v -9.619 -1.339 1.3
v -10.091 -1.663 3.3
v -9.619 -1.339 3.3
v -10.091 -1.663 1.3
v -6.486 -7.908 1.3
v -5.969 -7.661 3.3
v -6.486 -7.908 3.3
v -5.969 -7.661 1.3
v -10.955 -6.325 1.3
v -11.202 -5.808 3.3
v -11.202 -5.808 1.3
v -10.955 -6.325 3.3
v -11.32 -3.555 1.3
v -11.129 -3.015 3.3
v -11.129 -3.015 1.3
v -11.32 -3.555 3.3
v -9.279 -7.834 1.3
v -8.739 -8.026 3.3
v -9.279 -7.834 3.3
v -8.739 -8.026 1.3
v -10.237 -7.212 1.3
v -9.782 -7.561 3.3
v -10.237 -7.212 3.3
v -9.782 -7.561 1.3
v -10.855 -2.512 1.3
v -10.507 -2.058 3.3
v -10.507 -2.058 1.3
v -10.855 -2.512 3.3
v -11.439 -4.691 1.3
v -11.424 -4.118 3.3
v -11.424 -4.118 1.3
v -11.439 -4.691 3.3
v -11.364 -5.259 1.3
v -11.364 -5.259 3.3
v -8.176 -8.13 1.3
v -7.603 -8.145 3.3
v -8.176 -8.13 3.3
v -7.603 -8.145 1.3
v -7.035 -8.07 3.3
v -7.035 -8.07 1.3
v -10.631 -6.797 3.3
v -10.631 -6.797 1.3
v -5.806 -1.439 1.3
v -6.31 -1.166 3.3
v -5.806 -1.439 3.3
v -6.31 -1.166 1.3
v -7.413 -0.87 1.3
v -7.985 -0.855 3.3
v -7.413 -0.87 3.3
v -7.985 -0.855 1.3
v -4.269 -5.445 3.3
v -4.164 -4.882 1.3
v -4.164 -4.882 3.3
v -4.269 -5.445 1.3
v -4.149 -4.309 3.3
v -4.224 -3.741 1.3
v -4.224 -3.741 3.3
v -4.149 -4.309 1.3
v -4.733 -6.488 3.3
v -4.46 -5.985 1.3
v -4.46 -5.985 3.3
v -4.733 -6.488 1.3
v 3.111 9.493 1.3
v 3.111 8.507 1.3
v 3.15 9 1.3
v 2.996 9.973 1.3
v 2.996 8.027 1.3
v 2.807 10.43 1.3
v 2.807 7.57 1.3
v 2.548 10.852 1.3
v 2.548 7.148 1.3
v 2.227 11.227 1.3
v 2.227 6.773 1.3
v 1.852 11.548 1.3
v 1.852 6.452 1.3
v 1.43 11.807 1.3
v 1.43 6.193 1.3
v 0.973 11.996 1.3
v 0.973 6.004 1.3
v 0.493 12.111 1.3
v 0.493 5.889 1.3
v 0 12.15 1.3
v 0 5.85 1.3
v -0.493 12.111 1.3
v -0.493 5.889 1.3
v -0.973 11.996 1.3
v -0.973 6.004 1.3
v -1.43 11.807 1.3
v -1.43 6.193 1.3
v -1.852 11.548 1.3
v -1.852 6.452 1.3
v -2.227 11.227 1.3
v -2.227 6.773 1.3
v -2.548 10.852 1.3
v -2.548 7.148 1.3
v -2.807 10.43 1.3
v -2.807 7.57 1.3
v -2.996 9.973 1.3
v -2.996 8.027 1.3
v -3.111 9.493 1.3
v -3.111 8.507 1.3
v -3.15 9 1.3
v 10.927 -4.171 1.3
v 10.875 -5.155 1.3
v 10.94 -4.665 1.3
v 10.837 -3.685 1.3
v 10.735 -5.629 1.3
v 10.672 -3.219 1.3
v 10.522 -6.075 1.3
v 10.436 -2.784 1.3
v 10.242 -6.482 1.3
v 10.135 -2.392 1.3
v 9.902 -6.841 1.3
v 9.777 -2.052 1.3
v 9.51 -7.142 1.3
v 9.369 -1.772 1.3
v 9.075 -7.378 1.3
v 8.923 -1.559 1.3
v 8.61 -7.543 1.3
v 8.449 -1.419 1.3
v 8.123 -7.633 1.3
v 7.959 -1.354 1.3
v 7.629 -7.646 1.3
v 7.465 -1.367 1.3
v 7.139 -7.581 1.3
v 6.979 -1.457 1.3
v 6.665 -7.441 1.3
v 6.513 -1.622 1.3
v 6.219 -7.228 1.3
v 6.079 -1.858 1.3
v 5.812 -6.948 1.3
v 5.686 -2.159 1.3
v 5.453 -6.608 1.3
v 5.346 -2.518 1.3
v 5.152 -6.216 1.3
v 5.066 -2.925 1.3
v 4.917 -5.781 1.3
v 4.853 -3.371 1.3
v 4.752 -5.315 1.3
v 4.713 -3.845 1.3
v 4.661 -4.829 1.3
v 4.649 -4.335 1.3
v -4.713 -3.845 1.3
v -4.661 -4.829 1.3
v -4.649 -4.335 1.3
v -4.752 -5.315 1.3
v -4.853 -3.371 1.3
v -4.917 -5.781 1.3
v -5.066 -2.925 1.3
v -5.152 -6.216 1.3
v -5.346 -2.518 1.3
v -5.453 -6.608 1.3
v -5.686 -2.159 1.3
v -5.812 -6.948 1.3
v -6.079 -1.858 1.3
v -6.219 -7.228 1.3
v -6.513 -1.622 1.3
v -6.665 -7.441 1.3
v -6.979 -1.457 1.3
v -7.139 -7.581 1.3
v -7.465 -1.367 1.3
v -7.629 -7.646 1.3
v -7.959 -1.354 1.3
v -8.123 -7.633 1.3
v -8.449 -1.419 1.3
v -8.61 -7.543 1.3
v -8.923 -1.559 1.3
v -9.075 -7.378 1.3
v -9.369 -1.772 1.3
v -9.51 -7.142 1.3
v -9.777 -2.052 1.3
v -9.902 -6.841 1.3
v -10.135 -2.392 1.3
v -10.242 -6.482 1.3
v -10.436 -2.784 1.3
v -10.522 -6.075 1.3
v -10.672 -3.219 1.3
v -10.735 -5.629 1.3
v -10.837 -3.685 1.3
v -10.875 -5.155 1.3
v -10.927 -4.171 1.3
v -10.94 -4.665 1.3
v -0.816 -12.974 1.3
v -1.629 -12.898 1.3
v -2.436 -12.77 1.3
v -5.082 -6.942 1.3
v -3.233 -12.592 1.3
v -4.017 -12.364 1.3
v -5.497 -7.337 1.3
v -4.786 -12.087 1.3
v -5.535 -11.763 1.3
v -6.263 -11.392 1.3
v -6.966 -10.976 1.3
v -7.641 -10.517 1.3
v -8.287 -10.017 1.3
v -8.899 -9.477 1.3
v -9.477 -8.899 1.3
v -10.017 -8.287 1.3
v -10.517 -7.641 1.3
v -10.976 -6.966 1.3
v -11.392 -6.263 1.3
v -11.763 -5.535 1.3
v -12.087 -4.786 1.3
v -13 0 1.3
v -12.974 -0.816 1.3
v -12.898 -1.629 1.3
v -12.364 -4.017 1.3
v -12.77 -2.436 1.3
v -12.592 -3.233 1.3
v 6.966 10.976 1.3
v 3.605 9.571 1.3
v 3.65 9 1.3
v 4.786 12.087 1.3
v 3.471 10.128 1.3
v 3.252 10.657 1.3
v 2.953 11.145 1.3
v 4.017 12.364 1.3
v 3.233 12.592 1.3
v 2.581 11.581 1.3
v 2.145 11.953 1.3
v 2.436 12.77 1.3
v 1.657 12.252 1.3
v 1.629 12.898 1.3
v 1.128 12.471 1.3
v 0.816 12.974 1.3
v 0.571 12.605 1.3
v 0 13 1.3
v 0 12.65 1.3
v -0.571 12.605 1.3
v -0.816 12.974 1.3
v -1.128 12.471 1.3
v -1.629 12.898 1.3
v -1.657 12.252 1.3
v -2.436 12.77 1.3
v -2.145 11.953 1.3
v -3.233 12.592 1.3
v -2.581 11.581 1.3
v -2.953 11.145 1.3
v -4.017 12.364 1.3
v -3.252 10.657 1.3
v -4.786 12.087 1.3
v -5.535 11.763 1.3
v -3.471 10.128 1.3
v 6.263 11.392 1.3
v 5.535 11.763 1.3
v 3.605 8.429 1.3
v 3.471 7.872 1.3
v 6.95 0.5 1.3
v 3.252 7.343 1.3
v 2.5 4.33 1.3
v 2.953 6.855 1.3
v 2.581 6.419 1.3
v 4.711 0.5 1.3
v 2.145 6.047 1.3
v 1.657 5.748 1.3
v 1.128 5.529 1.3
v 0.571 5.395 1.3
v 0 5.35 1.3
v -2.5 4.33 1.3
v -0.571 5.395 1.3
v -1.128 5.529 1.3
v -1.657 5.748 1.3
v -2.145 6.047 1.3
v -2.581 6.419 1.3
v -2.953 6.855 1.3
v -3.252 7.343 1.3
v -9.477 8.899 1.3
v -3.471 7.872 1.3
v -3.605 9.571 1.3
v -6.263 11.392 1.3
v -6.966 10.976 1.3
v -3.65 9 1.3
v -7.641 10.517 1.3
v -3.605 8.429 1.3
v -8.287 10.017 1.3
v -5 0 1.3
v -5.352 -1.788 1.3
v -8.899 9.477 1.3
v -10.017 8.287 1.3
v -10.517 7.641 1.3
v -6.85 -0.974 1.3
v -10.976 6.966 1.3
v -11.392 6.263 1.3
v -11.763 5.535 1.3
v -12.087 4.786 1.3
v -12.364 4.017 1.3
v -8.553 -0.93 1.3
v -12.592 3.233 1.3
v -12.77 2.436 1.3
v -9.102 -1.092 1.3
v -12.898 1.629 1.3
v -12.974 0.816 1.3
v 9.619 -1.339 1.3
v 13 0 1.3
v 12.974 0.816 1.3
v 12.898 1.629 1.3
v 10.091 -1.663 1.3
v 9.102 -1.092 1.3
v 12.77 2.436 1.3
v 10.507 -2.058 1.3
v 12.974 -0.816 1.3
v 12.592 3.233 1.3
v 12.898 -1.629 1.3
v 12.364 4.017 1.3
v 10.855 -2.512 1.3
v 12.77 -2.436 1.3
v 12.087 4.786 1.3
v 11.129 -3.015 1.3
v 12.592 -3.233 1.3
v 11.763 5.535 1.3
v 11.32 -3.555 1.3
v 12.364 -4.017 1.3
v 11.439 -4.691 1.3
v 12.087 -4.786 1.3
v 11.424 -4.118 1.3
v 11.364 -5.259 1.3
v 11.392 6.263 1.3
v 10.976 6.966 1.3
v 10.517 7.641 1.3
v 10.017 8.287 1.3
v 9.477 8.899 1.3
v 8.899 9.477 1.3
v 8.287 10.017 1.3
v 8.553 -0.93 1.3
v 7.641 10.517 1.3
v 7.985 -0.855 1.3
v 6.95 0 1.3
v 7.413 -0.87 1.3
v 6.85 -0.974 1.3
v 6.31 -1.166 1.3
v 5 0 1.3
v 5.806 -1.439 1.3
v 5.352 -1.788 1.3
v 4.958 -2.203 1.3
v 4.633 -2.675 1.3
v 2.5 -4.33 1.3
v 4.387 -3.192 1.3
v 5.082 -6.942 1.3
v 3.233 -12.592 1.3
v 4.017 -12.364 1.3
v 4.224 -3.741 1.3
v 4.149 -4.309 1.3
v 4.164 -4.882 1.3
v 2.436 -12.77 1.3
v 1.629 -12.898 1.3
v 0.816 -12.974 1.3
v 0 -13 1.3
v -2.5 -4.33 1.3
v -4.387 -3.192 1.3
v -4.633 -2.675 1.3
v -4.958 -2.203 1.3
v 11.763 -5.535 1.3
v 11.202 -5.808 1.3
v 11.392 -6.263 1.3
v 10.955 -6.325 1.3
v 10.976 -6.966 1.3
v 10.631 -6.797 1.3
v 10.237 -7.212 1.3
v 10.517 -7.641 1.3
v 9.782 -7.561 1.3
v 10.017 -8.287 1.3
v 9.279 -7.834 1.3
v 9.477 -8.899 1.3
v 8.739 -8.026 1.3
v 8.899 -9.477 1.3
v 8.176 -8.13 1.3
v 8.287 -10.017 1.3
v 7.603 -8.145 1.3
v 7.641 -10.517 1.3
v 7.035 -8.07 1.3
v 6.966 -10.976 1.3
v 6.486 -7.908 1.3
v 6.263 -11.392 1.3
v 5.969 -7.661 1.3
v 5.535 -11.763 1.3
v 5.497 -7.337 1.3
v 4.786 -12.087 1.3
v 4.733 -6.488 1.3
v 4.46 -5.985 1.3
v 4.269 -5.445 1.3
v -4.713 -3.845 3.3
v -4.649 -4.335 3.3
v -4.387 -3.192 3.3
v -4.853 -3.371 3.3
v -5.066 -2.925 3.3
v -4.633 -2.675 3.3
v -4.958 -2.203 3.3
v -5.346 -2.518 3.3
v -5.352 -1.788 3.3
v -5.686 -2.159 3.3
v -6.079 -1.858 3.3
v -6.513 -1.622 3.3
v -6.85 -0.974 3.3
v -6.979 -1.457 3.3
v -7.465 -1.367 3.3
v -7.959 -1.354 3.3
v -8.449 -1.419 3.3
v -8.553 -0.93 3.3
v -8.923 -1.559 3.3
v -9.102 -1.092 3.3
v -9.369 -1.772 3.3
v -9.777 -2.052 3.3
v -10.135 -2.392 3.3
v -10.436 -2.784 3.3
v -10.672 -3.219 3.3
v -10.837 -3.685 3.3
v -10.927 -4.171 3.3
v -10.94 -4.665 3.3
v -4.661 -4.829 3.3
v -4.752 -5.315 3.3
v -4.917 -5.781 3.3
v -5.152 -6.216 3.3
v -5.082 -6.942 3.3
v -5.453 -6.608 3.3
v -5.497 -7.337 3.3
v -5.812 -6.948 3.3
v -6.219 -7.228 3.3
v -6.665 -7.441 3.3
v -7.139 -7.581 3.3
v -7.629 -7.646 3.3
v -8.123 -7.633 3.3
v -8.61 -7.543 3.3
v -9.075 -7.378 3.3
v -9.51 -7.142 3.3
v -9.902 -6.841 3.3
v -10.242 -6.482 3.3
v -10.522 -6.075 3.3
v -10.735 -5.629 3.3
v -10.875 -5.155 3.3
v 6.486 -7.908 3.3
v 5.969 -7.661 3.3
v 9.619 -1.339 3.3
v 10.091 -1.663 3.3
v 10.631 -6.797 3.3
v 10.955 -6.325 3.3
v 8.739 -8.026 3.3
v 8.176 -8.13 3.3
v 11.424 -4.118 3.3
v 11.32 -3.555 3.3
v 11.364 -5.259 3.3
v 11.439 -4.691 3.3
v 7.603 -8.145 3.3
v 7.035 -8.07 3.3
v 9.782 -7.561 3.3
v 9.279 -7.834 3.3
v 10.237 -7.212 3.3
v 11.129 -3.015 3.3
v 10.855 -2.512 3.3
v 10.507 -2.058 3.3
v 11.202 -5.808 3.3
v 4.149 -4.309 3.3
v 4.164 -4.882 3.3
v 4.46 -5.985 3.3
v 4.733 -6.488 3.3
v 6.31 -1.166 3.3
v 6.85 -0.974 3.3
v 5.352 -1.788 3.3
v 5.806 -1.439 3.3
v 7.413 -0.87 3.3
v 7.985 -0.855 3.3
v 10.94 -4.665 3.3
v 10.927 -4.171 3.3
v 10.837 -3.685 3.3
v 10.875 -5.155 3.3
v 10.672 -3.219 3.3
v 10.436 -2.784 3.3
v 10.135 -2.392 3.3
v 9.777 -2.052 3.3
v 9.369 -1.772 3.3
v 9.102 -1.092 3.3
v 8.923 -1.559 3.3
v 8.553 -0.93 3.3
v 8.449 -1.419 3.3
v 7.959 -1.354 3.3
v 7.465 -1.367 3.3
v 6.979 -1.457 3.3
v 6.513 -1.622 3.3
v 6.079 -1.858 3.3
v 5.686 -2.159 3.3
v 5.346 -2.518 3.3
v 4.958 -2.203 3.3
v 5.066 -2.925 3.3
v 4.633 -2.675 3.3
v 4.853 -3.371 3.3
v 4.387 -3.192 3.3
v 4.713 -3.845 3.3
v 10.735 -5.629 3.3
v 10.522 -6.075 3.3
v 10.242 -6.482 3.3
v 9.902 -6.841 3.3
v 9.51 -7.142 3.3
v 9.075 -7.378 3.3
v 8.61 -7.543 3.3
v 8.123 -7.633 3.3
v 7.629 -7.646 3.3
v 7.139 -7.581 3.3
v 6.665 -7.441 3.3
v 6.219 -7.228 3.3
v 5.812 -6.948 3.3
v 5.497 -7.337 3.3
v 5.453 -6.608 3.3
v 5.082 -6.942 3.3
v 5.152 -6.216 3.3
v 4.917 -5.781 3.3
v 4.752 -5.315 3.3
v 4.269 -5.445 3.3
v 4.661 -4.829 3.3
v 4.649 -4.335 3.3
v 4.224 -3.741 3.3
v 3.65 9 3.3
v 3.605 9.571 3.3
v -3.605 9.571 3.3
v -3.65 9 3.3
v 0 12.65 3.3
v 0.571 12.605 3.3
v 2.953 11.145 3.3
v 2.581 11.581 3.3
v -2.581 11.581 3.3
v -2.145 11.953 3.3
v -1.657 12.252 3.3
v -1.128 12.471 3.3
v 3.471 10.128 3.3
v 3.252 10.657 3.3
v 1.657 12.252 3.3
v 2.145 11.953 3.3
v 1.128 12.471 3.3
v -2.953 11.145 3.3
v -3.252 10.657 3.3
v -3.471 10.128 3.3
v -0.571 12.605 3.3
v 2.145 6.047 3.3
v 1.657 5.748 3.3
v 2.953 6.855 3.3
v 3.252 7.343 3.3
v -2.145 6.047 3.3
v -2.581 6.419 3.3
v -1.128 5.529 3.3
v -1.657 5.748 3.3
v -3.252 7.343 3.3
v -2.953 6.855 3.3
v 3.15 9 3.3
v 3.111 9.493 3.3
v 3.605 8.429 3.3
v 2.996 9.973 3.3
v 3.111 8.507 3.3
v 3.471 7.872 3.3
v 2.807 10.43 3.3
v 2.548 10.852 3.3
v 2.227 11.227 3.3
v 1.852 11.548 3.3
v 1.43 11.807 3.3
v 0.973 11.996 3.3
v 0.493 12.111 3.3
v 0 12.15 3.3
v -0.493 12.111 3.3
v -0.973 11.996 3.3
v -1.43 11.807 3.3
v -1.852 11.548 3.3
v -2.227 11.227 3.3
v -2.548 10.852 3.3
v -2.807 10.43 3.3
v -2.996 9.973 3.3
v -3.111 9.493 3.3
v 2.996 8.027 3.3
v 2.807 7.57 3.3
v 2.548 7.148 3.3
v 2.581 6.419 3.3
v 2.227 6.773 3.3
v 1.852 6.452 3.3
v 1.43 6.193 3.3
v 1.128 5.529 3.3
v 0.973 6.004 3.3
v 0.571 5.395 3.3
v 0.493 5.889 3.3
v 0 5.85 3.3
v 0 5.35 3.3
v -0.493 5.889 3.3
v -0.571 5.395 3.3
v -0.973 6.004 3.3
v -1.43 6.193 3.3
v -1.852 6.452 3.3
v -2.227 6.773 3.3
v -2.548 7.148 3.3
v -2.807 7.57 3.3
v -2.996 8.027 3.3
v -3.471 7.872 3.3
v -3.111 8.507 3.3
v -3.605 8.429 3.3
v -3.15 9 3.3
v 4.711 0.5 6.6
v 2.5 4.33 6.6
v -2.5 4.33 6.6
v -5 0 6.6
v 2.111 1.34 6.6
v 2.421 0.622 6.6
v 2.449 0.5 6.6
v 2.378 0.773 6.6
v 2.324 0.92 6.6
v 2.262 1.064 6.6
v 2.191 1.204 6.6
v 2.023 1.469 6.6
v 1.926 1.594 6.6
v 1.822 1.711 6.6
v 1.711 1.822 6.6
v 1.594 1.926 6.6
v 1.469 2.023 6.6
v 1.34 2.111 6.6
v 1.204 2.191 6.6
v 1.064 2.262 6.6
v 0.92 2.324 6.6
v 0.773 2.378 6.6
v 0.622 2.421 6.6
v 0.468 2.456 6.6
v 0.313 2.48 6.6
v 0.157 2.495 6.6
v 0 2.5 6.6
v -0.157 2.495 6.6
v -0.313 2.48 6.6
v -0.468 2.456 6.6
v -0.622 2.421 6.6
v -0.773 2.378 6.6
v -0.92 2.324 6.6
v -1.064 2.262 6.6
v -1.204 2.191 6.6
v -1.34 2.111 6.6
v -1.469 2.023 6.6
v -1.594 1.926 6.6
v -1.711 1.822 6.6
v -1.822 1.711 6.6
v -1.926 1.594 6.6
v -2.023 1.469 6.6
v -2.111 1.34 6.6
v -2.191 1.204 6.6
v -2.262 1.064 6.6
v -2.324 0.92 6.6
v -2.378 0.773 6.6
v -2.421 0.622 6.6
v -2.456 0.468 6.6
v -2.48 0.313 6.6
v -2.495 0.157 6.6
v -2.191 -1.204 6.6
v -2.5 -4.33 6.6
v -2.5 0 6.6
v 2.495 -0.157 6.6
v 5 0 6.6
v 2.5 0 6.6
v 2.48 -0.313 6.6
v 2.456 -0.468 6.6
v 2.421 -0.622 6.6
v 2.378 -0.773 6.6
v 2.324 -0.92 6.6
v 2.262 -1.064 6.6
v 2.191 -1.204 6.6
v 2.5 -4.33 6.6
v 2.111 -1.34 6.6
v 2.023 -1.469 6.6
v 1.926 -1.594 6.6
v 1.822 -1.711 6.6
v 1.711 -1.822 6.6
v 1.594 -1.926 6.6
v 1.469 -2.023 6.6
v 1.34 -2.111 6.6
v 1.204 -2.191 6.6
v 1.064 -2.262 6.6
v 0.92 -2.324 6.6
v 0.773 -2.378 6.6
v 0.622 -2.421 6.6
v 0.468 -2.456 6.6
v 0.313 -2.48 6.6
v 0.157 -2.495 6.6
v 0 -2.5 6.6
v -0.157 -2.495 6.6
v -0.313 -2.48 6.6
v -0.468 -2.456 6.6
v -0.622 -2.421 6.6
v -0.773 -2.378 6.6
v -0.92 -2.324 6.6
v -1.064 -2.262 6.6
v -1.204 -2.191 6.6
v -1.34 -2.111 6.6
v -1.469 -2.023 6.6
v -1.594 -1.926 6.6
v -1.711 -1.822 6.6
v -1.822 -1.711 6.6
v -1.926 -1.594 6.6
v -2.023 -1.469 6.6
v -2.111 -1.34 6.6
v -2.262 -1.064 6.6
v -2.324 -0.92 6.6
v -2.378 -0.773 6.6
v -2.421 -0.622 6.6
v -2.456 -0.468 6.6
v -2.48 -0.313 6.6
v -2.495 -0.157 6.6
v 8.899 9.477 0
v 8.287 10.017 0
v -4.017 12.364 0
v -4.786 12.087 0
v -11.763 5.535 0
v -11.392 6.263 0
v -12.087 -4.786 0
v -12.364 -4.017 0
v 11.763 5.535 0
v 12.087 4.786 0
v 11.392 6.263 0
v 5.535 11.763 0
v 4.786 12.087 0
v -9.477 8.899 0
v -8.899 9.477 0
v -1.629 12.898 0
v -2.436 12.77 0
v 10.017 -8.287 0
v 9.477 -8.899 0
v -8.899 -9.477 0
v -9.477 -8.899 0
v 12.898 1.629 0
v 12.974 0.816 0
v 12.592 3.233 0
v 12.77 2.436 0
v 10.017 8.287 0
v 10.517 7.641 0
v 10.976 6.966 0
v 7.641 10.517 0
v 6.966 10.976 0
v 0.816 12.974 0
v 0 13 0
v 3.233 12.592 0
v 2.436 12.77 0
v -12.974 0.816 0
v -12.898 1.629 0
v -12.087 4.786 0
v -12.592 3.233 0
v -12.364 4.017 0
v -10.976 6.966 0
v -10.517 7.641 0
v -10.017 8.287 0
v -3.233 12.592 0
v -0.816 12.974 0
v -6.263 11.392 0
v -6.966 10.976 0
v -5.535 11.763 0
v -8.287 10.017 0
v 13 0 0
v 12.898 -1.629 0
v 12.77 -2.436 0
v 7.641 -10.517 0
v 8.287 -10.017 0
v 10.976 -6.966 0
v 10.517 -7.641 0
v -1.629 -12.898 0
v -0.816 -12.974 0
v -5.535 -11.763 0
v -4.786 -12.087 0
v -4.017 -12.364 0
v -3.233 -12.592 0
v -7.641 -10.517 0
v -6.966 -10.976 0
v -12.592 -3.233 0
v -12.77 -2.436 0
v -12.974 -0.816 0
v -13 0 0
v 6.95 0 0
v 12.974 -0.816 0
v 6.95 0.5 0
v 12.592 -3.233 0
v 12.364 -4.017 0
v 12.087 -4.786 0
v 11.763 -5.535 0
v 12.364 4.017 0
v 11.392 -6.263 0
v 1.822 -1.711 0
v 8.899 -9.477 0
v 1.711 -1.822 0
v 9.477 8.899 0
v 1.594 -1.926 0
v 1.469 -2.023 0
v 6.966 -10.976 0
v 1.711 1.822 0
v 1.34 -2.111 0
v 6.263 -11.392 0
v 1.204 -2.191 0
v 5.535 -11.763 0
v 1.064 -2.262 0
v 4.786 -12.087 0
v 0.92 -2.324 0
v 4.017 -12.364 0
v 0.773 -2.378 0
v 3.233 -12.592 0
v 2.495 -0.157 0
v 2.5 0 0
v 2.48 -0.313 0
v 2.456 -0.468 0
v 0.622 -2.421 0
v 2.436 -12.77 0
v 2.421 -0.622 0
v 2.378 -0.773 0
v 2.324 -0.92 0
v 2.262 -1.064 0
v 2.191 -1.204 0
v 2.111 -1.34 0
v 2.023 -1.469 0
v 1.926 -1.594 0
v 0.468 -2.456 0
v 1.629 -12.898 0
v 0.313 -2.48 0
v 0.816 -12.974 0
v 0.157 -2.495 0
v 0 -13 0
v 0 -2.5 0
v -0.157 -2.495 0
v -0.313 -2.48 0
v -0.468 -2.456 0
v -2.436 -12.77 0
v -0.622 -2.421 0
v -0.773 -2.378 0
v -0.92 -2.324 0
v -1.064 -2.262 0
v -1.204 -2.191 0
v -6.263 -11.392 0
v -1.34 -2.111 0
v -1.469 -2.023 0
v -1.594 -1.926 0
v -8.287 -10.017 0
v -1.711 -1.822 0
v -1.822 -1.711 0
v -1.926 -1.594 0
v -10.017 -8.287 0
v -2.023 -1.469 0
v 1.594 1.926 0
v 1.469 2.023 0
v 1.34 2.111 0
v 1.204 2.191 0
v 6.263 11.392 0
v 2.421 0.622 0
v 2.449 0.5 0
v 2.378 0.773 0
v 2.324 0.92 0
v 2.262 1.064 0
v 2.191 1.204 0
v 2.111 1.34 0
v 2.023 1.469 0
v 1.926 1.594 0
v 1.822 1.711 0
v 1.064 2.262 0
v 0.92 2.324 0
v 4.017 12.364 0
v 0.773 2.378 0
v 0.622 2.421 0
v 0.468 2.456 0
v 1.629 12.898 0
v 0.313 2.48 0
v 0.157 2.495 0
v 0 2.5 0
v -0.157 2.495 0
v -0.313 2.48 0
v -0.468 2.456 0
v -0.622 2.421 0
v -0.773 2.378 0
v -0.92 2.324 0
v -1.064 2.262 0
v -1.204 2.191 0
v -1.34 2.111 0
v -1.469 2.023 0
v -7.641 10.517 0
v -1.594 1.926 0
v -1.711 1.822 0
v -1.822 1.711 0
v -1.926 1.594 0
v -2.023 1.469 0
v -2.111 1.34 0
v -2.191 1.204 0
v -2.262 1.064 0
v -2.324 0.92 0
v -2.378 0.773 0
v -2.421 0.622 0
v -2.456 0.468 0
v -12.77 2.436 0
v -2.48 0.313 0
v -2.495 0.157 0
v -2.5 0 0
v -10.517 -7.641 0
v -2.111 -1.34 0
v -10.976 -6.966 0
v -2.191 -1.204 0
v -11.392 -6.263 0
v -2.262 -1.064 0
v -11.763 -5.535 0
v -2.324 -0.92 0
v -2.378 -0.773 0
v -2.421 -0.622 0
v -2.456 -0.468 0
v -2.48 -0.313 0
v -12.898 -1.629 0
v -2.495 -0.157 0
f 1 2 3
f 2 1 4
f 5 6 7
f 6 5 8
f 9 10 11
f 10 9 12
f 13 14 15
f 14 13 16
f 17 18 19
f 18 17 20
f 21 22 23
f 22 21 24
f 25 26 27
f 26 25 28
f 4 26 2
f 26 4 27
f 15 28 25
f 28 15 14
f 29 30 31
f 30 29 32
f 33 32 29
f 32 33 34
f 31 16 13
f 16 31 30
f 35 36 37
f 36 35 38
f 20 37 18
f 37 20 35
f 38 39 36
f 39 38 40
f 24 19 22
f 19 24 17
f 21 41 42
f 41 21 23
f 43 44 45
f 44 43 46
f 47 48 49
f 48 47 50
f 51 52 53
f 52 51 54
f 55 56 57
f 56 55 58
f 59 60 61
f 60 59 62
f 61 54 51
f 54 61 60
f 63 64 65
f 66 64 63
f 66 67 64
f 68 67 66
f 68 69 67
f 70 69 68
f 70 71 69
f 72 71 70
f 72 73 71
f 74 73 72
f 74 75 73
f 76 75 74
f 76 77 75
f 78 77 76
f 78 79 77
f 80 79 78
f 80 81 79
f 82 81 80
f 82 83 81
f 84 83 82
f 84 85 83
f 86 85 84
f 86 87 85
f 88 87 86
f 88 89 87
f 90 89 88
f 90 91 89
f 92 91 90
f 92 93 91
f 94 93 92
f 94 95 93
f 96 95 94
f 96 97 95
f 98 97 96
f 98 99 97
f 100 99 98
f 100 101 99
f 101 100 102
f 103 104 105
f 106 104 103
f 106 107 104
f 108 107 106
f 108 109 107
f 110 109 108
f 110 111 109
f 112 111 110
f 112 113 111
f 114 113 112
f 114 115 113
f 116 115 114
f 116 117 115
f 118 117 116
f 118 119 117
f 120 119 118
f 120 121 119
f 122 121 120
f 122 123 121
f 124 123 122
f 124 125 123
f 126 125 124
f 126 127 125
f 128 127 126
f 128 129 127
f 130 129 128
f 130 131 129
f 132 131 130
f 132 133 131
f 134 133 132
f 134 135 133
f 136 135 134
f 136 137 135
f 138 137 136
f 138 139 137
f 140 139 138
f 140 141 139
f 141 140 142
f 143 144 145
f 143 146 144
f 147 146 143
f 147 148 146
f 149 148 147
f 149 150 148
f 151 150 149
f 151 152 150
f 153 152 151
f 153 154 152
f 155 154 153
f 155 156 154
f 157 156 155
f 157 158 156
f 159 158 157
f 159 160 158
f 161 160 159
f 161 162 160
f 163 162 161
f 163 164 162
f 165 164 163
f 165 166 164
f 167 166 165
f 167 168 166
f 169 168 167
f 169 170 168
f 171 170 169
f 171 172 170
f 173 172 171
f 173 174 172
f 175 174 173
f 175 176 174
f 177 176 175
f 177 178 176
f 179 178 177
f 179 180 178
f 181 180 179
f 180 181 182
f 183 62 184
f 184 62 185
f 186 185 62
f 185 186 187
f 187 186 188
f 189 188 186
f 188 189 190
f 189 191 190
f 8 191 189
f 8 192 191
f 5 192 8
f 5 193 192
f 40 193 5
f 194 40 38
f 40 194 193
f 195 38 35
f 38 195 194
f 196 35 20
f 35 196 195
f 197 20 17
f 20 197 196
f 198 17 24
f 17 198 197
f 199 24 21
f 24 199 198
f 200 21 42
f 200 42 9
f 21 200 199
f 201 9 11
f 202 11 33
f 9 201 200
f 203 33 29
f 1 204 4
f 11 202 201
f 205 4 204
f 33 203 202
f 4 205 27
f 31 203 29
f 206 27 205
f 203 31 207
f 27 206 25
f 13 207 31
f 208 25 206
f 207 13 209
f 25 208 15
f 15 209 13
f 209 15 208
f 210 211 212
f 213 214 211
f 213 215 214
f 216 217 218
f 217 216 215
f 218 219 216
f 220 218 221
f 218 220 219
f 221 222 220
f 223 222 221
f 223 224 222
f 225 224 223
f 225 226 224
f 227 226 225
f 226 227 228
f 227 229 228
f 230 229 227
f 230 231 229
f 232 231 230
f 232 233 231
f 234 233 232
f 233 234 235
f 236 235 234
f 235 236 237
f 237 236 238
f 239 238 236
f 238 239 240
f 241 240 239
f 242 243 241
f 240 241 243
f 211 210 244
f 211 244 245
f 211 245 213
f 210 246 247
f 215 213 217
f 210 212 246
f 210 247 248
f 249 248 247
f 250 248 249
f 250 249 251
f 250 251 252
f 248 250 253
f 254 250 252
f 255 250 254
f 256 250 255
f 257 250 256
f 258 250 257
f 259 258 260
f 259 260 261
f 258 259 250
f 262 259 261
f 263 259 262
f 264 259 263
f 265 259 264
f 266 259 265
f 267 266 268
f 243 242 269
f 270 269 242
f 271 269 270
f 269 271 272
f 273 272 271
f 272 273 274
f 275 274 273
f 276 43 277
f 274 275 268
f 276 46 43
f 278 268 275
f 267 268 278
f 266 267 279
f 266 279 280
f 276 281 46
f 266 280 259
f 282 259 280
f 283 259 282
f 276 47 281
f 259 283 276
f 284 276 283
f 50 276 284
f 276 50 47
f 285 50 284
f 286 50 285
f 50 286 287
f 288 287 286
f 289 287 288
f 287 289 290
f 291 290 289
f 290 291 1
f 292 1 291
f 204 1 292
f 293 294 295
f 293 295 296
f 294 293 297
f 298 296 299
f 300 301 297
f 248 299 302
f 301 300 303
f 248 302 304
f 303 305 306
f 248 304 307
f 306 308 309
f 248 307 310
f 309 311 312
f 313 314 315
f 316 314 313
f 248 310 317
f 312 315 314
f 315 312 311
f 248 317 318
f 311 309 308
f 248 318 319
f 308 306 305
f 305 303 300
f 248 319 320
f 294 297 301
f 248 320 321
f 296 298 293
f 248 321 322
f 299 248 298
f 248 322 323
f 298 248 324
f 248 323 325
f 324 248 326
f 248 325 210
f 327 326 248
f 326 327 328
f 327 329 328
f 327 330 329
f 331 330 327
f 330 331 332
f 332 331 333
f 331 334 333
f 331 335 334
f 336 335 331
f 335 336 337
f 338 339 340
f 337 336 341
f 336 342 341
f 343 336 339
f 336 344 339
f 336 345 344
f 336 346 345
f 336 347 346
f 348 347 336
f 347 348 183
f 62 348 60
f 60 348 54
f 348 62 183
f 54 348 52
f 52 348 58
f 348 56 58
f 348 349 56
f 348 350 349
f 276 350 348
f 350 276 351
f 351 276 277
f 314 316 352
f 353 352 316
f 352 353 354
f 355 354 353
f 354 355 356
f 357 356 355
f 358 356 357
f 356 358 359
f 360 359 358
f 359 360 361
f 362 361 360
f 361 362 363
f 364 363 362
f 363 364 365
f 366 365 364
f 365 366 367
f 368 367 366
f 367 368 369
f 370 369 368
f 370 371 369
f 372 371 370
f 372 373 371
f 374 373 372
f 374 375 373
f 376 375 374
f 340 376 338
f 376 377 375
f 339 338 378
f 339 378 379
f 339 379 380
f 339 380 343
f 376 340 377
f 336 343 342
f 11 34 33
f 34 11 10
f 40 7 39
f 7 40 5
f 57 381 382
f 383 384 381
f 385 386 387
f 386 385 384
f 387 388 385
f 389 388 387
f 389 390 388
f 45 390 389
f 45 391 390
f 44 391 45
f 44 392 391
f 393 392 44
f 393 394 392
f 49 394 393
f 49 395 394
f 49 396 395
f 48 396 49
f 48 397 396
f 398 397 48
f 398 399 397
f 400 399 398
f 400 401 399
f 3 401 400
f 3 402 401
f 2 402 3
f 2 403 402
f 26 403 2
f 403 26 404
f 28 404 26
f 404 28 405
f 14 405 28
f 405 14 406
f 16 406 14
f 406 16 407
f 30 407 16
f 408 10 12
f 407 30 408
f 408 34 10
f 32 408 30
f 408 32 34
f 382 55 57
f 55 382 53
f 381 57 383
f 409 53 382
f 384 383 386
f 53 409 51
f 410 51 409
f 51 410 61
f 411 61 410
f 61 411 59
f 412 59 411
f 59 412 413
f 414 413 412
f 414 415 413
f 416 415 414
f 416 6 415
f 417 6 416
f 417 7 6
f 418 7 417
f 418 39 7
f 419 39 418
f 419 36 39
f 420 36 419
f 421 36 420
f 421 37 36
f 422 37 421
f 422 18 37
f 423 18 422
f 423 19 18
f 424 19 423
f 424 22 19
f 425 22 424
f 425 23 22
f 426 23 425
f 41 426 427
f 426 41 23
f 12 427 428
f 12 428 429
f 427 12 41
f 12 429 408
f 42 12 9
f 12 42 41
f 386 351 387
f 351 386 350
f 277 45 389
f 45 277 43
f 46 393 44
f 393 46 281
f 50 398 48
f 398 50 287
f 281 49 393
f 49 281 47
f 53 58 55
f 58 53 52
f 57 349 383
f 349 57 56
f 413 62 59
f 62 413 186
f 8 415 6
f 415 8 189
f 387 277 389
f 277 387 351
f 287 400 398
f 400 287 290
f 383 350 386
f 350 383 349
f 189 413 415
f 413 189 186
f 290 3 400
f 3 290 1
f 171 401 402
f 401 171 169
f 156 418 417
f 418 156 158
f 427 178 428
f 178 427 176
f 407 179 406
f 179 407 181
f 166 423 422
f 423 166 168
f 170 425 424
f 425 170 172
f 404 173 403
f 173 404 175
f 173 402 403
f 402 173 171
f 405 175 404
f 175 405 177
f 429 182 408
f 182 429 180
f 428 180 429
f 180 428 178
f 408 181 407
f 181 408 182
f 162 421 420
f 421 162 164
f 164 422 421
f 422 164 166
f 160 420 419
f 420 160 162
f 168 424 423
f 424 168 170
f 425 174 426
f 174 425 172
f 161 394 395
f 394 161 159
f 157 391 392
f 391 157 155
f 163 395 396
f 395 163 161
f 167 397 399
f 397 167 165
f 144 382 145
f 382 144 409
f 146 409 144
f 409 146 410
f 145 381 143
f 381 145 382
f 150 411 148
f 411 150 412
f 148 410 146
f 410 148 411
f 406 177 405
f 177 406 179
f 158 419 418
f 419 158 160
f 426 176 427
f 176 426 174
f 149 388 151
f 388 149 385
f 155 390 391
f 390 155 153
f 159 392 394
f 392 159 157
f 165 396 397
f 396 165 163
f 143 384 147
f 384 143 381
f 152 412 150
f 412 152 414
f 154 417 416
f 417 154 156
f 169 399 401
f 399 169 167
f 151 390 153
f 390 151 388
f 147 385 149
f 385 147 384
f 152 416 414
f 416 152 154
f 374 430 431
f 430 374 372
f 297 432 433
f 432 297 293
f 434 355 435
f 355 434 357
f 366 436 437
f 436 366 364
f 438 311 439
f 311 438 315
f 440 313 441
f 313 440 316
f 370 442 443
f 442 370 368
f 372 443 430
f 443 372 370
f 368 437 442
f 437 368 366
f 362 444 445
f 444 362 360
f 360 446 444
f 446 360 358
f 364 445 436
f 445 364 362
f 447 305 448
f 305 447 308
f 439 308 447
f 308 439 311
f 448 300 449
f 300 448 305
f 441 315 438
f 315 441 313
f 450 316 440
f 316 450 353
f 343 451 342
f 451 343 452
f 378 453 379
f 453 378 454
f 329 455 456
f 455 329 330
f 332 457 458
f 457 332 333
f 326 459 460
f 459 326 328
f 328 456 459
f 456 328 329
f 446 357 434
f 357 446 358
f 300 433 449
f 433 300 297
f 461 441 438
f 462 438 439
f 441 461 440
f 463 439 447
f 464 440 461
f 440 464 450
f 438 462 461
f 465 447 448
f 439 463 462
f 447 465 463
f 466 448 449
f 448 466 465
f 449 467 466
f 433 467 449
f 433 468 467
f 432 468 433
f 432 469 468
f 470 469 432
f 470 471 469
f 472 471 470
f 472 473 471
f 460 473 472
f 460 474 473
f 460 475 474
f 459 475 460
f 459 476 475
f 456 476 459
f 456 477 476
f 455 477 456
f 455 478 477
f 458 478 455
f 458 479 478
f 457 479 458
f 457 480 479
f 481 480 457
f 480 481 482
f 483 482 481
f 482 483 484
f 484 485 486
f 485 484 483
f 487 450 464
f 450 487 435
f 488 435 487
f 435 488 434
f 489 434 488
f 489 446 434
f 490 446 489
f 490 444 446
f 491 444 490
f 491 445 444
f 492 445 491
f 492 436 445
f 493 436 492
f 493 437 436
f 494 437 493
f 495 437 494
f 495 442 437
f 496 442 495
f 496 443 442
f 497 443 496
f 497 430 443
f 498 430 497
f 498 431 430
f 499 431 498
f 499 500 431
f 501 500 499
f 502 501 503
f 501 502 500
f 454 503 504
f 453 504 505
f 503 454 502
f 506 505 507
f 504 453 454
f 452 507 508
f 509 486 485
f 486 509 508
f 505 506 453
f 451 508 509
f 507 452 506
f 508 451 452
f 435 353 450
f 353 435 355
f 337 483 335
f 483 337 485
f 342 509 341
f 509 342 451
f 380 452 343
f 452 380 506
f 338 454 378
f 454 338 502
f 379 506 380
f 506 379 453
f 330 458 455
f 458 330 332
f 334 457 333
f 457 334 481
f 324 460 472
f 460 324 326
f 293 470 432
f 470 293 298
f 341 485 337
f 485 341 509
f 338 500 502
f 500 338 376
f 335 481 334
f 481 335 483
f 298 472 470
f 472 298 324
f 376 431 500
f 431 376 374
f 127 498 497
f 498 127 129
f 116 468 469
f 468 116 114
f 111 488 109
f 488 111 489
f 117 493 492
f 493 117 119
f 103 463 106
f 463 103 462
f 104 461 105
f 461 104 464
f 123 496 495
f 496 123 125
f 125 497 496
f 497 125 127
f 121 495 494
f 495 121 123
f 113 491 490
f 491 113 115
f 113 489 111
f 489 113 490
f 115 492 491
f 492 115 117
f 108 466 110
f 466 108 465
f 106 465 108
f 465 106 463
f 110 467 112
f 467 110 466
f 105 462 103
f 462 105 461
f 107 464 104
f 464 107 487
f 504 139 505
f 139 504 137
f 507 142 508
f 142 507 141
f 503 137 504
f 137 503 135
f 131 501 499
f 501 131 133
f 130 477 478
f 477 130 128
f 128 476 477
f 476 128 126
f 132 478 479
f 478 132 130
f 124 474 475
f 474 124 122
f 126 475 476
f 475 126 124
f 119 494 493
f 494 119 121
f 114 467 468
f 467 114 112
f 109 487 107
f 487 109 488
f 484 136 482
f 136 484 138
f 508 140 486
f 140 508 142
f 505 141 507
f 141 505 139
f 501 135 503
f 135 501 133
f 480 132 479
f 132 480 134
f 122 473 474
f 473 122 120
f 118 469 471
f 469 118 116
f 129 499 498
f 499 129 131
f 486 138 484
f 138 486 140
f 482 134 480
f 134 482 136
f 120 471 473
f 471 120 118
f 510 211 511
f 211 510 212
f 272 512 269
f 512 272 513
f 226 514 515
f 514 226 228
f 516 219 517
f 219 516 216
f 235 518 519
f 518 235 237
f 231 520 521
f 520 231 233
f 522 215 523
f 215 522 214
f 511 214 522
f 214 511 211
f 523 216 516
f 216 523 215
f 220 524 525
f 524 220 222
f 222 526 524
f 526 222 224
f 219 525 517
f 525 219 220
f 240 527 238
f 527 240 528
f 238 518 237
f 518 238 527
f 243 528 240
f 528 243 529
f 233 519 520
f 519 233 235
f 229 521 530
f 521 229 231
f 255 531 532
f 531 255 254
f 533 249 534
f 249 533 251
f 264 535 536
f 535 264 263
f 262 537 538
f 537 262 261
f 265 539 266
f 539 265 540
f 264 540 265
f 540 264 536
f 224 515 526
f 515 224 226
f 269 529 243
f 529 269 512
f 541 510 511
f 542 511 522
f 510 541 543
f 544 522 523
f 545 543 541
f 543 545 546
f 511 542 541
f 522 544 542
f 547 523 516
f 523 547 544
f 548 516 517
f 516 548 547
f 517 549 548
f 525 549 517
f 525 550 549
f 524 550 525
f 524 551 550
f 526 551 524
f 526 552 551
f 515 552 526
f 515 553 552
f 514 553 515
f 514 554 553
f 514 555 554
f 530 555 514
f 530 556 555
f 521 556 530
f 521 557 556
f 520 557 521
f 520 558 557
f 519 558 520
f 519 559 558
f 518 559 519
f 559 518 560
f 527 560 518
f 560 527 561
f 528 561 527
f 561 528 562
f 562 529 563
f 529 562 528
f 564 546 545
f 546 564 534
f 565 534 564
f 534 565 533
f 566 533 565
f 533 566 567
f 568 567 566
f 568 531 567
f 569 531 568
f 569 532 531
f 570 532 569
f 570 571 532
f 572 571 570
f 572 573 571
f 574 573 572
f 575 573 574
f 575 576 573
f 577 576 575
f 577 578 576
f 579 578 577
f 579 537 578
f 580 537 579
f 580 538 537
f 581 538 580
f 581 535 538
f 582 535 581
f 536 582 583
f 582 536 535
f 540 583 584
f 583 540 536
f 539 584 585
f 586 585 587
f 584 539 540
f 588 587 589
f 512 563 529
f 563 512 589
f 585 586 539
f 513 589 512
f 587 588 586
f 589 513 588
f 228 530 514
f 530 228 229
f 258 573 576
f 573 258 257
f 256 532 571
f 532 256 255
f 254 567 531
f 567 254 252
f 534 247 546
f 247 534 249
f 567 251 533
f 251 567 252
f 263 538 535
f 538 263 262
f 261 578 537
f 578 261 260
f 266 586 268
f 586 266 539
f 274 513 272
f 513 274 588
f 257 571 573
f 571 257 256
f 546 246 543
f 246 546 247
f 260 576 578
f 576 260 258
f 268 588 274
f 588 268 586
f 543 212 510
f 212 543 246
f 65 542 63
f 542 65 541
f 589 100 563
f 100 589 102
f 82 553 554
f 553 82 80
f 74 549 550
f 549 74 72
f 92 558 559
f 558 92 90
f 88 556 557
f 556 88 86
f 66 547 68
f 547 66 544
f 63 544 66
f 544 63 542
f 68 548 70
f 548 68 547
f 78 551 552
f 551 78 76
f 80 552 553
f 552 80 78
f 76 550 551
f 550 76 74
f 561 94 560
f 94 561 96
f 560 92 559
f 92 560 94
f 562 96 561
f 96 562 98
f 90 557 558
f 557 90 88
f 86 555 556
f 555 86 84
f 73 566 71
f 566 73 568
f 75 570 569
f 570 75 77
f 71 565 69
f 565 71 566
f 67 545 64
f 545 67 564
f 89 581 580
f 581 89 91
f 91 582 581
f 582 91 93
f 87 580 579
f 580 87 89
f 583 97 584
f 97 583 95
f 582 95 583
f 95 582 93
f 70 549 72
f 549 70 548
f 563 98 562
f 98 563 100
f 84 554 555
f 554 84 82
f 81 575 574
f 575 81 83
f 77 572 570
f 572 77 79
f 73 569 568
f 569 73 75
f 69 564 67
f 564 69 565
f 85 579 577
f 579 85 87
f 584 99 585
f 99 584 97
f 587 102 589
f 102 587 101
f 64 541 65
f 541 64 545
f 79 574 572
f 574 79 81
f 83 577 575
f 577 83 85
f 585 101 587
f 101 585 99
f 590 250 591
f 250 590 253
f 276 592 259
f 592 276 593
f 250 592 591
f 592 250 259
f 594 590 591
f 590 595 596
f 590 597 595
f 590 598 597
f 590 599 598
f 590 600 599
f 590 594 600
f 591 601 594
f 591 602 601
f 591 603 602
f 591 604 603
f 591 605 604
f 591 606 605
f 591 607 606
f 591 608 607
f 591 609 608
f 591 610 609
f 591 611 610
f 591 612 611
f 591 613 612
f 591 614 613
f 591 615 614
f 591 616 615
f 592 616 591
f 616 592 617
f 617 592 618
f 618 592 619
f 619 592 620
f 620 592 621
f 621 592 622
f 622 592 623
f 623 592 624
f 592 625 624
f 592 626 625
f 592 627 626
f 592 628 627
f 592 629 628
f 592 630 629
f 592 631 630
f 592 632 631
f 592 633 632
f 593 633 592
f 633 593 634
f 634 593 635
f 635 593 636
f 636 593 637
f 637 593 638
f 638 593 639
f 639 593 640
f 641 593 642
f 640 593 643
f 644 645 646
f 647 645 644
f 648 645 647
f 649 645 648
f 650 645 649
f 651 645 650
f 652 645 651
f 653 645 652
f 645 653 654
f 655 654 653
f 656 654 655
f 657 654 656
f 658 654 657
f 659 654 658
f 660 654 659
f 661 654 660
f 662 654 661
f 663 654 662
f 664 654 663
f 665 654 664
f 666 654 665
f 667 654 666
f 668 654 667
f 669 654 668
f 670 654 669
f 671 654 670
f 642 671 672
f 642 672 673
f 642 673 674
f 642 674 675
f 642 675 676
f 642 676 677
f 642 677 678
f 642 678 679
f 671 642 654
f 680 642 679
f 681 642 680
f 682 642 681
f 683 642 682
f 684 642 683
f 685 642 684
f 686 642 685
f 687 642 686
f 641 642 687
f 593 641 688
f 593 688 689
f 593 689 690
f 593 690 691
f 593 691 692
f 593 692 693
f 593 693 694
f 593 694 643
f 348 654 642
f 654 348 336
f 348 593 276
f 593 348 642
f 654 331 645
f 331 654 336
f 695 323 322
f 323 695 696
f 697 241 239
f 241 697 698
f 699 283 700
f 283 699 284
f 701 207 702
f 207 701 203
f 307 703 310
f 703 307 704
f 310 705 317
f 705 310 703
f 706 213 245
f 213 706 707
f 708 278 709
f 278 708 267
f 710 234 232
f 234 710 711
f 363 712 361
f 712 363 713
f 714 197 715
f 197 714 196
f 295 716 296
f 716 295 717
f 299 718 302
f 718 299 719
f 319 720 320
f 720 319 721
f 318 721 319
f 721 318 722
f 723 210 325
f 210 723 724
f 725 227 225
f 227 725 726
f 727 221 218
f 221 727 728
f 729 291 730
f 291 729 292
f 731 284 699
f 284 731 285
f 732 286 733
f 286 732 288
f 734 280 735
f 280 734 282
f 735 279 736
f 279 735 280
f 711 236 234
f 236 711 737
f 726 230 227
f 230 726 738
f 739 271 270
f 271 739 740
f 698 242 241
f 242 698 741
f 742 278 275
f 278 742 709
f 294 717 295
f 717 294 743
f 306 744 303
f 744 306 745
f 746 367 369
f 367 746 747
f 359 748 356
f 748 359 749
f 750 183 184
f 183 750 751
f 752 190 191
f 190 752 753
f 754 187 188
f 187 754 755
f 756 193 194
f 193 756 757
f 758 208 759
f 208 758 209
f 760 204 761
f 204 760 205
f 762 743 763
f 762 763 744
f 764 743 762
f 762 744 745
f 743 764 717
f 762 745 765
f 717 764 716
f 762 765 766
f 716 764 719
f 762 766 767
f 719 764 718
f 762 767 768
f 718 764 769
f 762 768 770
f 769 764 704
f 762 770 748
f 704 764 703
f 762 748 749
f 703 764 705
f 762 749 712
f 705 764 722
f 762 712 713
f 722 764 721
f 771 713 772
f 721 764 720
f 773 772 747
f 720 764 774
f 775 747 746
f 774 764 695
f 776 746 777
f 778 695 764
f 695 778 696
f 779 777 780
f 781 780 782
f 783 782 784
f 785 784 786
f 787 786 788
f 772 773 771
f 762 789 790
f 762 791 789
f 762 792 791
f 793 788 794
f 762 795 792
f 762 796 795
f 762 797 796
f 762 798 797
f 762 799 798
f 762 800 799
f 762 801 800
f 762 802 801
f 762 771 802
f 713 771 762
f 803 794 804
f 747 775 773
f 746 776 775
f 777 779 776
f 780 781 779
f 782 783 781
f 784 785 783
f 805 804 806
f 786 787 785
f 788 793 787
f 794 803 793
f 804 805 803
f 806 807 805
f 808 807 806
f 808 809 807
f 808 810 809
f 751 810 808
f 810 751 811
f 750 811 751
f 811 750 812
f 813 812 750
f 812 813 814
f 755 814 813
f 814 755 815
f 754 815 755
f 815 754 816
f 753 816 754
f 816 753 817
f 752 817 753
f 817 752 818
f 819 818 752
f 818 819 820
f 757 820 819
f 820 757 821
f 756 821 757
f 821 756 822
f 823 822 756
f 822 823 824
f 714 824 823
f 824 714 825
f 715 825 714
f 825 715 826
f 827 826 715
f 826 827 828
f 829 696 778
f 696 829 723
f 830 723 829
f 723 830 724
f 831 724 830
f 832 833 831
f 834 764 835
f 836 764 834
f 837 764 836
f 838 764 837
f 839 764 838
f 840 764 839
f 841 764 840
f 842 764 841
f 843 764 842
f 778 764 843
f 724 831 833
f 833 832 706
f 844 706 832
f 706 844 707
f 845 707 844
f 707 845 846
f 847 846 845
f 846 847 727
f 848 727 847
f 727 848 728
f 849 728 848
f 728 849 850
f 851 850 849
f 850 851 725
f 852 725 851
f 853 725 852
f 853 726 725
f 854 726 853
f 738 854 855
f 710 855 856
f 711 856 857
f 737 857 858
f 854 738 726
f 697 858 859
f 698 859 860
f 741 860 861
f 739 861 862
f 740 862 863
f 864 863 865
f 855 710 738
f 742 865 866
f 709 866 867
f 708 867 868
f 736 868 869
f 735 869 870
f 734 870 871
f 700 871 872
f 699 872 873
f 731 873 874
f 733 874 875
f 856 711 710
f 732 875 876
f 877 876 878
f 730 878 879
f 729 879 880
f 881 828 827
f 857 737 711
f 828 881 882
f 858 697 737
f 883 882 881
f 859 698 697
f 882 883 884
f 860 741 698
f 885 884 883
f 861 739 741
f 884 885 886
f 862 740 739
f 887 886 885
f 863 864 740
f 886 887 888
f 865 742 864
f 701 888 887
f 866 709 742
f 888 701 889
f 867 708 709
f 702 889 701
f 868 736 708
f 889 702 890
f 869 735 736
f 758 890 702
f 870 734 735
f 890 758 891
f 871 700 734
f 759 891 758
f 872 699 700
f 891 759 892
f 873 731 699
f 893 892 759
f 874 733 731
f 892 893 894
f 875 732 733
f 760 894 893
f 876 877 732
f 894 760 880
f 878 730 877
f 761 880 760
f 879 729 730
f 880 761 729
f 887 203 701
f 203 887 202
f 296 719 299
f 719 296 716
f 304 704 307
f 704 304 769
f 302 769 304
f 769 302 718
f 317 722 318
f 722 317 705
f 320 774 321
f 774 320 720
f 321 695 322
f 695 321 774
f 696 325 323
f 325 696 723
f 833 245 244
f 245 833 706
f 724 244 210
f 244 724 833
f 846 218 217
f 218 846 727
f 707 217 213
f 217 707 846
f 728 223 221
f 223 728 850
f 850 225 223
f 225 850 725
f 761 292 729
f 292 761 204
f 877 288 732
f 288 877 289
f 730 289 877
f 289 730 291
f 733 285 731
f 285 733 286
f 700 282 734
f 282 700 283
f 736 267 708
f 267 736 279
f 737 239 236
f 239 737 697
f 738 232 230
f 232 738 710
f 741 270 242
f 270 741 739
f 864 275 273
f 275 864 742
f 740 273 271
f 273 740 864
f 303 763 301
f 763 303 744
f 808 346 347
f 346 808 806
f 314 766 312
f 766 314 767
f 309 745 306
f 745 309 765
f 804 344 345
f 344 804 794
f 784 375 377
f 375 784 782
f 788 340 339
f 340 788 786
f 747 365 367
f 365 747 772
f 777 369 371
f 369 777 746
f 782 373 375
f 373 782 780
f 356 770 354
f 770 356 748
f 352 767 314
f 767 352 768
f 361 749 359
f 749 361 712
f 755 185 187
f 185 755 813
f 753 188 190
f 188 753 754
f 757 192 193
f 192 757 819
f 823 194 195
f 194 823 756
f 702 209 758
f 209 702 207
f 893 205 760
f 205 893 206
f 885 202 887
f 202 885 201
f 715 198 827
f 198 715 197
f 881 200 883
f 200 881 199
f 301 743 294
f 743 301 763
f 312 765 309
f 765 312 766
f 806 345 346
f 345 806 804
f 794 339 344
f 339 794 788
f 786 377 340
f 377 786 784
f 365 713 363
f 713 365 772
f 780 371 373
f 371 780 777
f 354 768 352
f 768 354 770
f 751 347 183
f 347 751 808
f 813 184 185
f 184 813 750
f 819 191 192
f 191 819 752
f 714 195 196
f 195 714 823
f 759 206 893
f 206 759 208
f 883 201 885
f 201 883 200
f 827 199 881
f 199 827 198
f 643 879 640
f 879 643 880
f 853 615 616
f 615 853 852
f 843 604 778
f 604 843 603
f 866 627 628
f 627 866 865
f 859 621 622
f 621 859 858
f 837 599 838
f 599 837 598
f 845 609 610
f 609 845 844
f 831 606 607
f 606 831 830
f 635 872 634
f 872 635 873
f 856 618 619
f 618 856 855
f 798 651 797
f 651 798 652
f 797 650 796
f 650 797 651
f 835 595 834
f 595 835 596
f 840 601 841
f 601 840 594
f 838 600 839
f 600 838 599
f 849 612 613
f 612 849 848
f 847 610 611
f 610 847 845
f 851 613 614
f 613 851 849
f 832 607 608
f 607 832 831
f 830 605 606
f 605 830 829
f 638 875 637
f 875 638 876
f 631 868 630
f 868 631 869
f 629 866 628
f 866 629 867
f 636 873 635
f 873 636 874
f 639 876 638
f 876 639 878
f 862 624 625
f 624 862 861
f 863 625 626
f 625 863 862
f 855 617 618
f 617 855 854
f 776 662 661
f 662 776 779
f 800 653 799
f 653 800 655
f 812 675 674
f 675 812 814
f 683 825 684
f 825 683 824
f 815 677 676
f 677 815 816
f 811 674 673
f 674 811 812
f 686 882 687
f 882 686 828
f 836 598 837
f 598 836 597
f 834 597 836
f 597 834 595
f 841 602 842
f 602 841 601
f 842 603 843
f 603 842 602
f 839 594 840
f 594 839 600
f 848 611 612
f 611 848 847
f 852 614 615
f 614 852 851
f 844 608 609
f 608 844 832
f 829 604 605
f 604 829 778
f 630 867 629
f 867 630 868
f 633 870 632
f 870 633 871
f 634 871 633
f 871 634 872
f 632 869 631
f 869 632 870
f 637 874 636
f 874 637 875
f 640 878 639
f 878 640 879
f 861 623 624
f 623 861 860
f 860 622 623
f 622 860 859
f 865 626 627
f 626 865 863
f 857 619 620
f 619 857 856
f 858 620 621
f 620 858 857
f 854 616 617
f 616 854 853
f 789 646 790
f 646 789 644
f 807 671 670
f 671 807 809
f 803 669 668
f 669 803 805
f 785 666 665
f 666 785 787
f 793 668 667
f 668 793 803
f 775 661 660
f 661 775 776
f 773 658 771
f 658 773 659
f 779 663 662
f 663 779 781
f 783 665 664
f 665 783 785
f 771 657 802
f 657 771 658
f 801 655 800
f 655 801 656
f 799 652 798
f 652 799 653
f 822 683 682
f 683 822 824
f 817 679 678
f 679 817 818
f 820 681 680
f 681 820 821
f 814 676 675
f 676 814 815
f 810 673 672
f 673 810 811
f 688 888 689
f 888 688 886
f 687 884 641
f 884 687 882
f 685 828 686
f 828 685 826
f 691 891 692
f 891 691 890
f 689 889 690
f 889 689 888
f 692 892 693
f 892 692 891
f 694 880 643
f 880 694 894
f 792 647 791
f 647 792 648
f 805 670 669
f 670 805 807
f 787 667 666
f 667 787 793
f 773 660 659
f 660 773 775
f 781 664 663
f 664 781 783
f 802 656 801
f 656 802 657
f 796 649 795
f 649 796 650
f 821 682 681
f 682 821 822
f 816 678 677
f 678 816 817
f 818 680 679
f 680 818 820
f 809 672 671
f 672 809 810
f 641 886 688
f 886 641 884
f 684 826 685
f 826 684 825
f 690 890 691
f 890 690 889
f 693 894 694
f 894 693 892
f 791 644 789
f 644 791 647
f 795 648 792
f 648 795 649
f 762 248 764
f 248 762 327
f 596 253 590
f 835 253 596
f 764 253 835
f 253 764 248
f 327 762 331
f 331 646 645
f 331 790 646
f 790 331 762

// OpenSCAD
// file: ../src/polyScrewThread_r1.scad
/*
 *    polyScrewThread_r1.scad    by aubenc @ Thingiverse
 *
 * This script contains the library modules that can be used to generate
 * threaded rods, screws and nuts.
 *
 * http://www.thingiverse.com/thing:8796
 *
 * CC Public Domain
 */


/* Example:
 * Just a 100mm long threaded rod.
 *
 * screw_thread(15,   // Outer diameter of the thread
 *               4,   // Step, traveling length per turn, also, tooth height, whatever...
 *              55,   // Degrees for the shape of the tooth 
 *                       (XY plane = 0, Z = 90, btw, 0 and 90 will/should not work...)
 *             100,   // Length (Z) of the tread
 *            PI/2,   // Resolution, one face each "PI/2" mm of the perimeter, 
 *               0);  // Countersink style:
 *                         -2 - Not even flat ends
 *                         -1 - Bottom (countersink'd and top flat)
 *                          0 - None (top and bottom flat)
 *                          1 - Top (bottom flat)
 *                          2 - Both (countersink'd)
 */
module screw_thread(od,st,lf0,lt,rs,cs)
{
    or=od/2;
    ir=or-st/2*cos(lf0)/sin(lf0);
    pf=2*PI*or;
    sn=floor(pf/rs);
    lfxy=360/sn;
    ttn=round(lt/st+1);
    zt=st/sn;

    intersection()
    {
        if (cs >= -1)
        {
           thread_shape(cs,lt,or,ir,sn,st);
        }

        full_thread(ttn,st,sn,zt,lfxy,or,ir);
    }
}

/* Example.
 * A nut for the thread rod example.
 *
 * hexa_nut(24,  // Distance between flats
 *           8,  // Height 
 *           4,  // Step height (the half will be used to countersink the ends)
 *          55,  // Degrees (same as used for the screw_thread example)
 *          15,  // Outer diameter of the thread to match
 *         0.5)  // Resolution, you may want to set this to small values
 *                  (quite high res) to minimize overhang issues
 *
 */
module hex_nut(df,hg,sth,clf,cod,crs)
{

    difference()
    {
        hex_head(hg,df);

        hex_countersink_ends(sth/2,cod,clf,crs,hg);

        screw_thread(cod,sth,clf,hg,crs,-2);
    }
}


module hex_screw(od,st,lf0,lt,rs,cs,df,hg,ntl,ntd)
{
    ntr=od/2-(st/2)*cos(lf0)/sin(lf0);

    union()
    {
        hex_head(hg,df);

        translate([0,0,hg])
        if ( ntl == 0 )
        {
            cylinder(h=0.01, r=ntr, center=true);
        }
        else
        {
            if ( ntd == -1 )
            {
                cylinder(h=ntl+0.01, r=ntr, $fn=floor(od*PI/rs), center=false);
            }
            else if ( ntd == 0 )
            {
                union()
                {
                    cylinder(h=ntl-st/2,
                             r=od/2, $fn=floor(od*PI/rs), center=false);

                    translate([0,0,ntl-st/2])
                    cylinder(h=st/2,
                             r1=od/2, r2=ntr, 
                             $fn=floor(od*PI/rs), center=false);
                }
            }
            else
            {
                cylinder(h=ntl, r=ntd/2, $fn=ntd*PI/rs, center=false);
            }
        }

        translate([0,0,ntl+hg]) screw_thread(od,st,lf0,lt,rs,cs);
    }
}

module hex_screw_0(od,st,lf0,lt,rs,cs,df,hg,ntl,ntd)
{
    ntr=od/2-(st/2)*cos(lf0)/sin(lf0);

    union()
    {
        hex_head_0(hg,df);

        translate([0,0,hg])
        if ( ntl == 0 )
        {
            cylinder(h=0.01, r=ntr, center=true);
        }
        else
        {
            if ( ntd == -1 )
            {
                cylinder(h=ntl+0.01, r=ntr, $fn=floor(od*PI/rs), center=false);
            }
            else if ( ntd == 0 )
            {
                union()
                {
                    cylinder(h=ntl-st/2,
                             r=od/2, $fn=floor(od*PI/rs), center=false);

                    translate([0,0,ntl-st/2])
                    cylinder(h=st/2,
                             r1=od/2, r2=ntr, 
                             $fn=floor(od*PI/rs), center=false);
                }
            }
            else
            {
                cylinder(h=ntl, r=ntd/2, $fn=ntd*PI/rs, center=false);
            }
        }

        translate([0,0,ntl+hg]) screw_thread(od,st,lf0,lt,rs,cs);
    }
}

module thread_shape(cs,lt,or,ir,sn,st)
{
    if ( cs == 0 )
    {
        cylinder(h=lt, r=or, $fn=sn, center=false);
    }
    else
    {
        union()
        {
            translate([0,0,st/2])
              cylinder(h=lt-st+0.005, r=or, $fn=sn, center=false);

            if ( cs == -1 || cs == 2 )
            {
                cylinder(h=st/2, r1=ir, r2=or, $fn=sn, center=false);
            }
            else
            {
                cylinder(h=st/2, r=or, $fn=sn, center=false);
            }

            translate([0,0,lt-st/2])
            if ( cs == 1 || cs == 2 )
            {
                  cylinder(h=st/2, r1=or, r2=ir, $fn=sn, center=false);
            }
            else
            {
                cylinder(h=st/2, r=or, $fn=sn, center=false);
            }
        }
    }
}

module full_thread(ttn,st,sn,zt,lfxy,or,ir)
{
  if(ir >= 0.2)
  {
    for(i=[0:ttn-1])
    {
        for(j=[0:sn-1])
			assign( pt = [	[0,                  0,                  i*st-st            ],
                        [ir*cos(j*lfxy),     ir*sin(j*lfxy),     i*st+j*zt-st       ],
                        [ir*cos((j+1)*lfxy), ir*sin((j+1)*lfxy), i*st+(j+1)*zt-st   ],
								[0,0,i*st],
                        [or*cos(j*lfxy),     or*sin(j*lfxy),     i*st+j*zt-st/2     ],
                        [or*cos((j+1)*lfxy), or*sin((j+1)*lfxy), i*st+(j+1)*zt-st/2 ],
                        [ir*cos(j*lfxy),     ir*sin(j*lfxy),     i*st+j*zt          ],
                        [ir*cos((j+1)*lfxy), ir*sin((j+1)*lfxy), i*st+(j+1)*zt      ],
                        [0,                  0,                  i*st+st            ]	])
        {
            polyhedron(points=pt,
              		  triangles=[	[1,0,3],[1,3,6],[6,3,8],[1,6,4],
											[0,1,2],[1,4,2],[2,4,5],[5,4,6],[5,6,7],[7,6,8],
											[7,8,3],[0,2,3],[3,2,7],[7,2,5]	]);
        }
    }
  }
  else
  {
    echo("Step Degrees too agresive, the thread will not be made!!");
    echo("Try to increase de value for the degrees and/or...");
    echo(" decrease the pitch value and/or...");
    echo(" increase the outer diameter value.");
  }
}

module hex_head(hg,df)
{
	rd0=df/2/sin(60);
	x0=0;	x1=df/2;	x2=x1+hg/2;
	y0=0;	y1=hg/2;	y2=hg;

	intersection()
	{
	   cylinder(h=hg, r=rd0, $fn=6, center=false);

		rotate_extrude(convexity=10, $fn=6*round(df*PI/6/0.5))
		polygon([ [x0,y0],[x1,y0],[x2,y1],[x1,y2],[x0,y2] ]);
	}
}

module hex_head_0(hg,df)
{
    cylinder(h=hg, r=df/2/sin(60), $fn=6, center=false);
}

module hex_countersink_ends(chg,cod,clf,crs,hg)
{
    translate([0,0,-0.1])
    cylinder(h=chg+0.01, 
             r1=cod/2, 
             r2=cod/2-(chg+0.1)*cos(clf)/sin(clf),
             $fn=floor(cod*PI/crs), center=false);

    translate([0,0,hg-chg+0.1])
    cylinder(h=chg+0.01, 
             r1=cod/2-(chg+0.1)*cos(clf)/sin(clf),
             r2=cod/2, 
             $fn=floor(cod*PI/crs), center=false);
}
// file: ../src/WINDGAUGE02A_R03.scad
$fn=40; // model faces resolution.
include <../configuration.scad>
include <polyScrewThread_r1.scad>

PI=3.141592;

//Držák magnetu

module WINDGAUGE02A_R03()
    {
    //setihrana matice
    difference()
        {
        union()
            {
            //zakladni material
            cylinder (h = magnet_vyska+R03_vyska_narezeni_hridelky+S01_sila_materialu-senzor_vyska_IO-senzor_odstup_od_magnetu, r= R05_sirka_matky/2, $fn=6);
            
            translate([0,0,-S01_sila_materialu/2])    
                cylinder (h = S01_sila_materialu, r=(S01_prumer_vnitrniB-S01_hloubka_zavitu)/2, center = true, $fn=100);  
             
                for(i = [1 : magnet_pocet]){
                    rotate([0,0,(360/magnet_pocet)*i]){
                        translate([0,magnet_vzdalenost, 0]) difference(){
                            cylinder(h=magnet_zapusteni, d=magnet_prumer+1);
                            cylinder(h=magnet_vyska+0.1, d=magnet_prumer);
                        }
                    }
                }
             }
        
       
        //otvor  
        translate([0,0,-S01_sila_materialu])        
            cylinder (h = 3*S01_sila_materialu+2*S01_sila_materialu+vyska_hlavy_sroubu+magnet_vyska+0.1, r=prumer_osicky/2, $fn=100);
              
        translate([0,0,magnet_vyska+R03_vyska_narezeni_hridelky+S01_sila_materialu-senzor_vyska_IO-senzor_odstup_od_magnetu+0.1-S01_sila_materialu]);
   
            
            
  //sterbina
translate([0,0,-25]) 
   cube([(lozisko_prumer_vnitrni+2*lozisko_prekryv+2)/2+2,sterbina_na_osicku,50]);          
            
        }
    }


WINDGAUGE02A_R03();

 
// file: ../configuration.scad
$fn=40; // model faces resolution.

//OBECNE PARAMETRY 
//----------------------------------------------------------------
//----------------------------------------------------------------
//WINDGAUGE02A_S02 - Parametry pro hlavni valec anemometru
S01_hloubka_zavitu=4;
S01_vyska=95; //80
S01_prumer_vnitrni=45;
S01_prumer_vnitrniB=30;
S01_prechod_vyska=45;
S01_prechod_delka=30;
S01_sila_materialu=1.3;
S01_vyska_horni_zavit=10;
S01_vyska_spodniho_zavitu=10;
S01_sila_drzaku_RJ11=3; //vyška drážky
S01_hrana_A_RJ11=12.3;
S01_hrana_B_RJ11=19;
S01_tolerance_zavit=1.5;

//Obecné parametry
prumer_osicky=5;
sterbina_na_osicku=0.5; //aby nepraskal a držel držák rotoru na hřídelce

//Rozmery modulu pro lozisko
senzor_delka=10.16*4;
senzor_sirka=10.16*3;
senzor_vyska_IO=2;
senzor_odstup_od_magnetu=2;

//Parametry loziska
lozisko_prumer_vnitrni=4.9;
lozisko_prumer_vnejsi=16.15;
lozisko_vyska=5*2;
lozisko_prekryv=1.5;

//Parametry magnetu
magnet_pocet=3;
magnet_prumer=6.3;
magnet_vyska=3;
magnet_zapusteni=2;
magnet_tolerance_prumeru=0.2;
magnet_vzdalenost = 9; // vzdalenost magnetu od stredu

R03_vyska_narezeni_hridelky=5;

//Parametry sroubu
prumer_sroubu=3.4;
prumer_hlavy_sroubu=6;
vyska_hlavy_sroubu=4;
vyska_matky=3;
sirka_matky=6.7;

sirka_matky_tol=0.175;
prumer_orechu=10;

//WINDGAUGE02A_R01 //pro lopatku
L01_hrana_drzaku_a=10;
L01_hrana_drzaku_b=3;
L01_delka_uchytu=25;
L01_prumer_lopatky=40;
L01_sila_materialu_lopatky=1.2;

//WINDGAUGE02A_D01 //uchyt velky
D01_material_pod_zavitem=5;
D01_material_za_zavitem=3;
D01_material_pred_zavitem=2;
D01_delka_tyce=60;
D01_sirka_tyce=10;

//WINDGAUGE02A_D02 //uchyt na sloup
D02_sila_materialu=4;
D02_vyska_uchytky=30;
D02_prumer_obruby=24; 

//27mm - 3/4 trubka
D02_delka_celeho_uchytu=60;
D02_dotahova_vzdalenost=1.5;
D02_prumer_uchytneho_sroubu=4.2;
//D02_sirka_matky=9.1; //pro M4
//D02_vyska_matky=3;
D02_sirka_matky= sirka_matky; //pro M3
D02_vyska_matky= vyska_matky;

//WINDGAUGE02A_R01 //rotor s prekritim statoru
R01_vyska_preryti_statoru=10;
R01_sila_materialu_pro_prekriti=1.3;
R01_mezera_mezi_statorem_rotorem=3;

//WINDGAUGE02A_R03 //drzak magnetu
R05_sirka_matky=10;
// main file
$fn=100; // model faces resolution.
include <../configuration.scad>
use <../src/WINDGAUGE02A_R03.scad>

translate([0,0,S01_sila_materialu])
    WINDGAUGE02A_R03();

            
